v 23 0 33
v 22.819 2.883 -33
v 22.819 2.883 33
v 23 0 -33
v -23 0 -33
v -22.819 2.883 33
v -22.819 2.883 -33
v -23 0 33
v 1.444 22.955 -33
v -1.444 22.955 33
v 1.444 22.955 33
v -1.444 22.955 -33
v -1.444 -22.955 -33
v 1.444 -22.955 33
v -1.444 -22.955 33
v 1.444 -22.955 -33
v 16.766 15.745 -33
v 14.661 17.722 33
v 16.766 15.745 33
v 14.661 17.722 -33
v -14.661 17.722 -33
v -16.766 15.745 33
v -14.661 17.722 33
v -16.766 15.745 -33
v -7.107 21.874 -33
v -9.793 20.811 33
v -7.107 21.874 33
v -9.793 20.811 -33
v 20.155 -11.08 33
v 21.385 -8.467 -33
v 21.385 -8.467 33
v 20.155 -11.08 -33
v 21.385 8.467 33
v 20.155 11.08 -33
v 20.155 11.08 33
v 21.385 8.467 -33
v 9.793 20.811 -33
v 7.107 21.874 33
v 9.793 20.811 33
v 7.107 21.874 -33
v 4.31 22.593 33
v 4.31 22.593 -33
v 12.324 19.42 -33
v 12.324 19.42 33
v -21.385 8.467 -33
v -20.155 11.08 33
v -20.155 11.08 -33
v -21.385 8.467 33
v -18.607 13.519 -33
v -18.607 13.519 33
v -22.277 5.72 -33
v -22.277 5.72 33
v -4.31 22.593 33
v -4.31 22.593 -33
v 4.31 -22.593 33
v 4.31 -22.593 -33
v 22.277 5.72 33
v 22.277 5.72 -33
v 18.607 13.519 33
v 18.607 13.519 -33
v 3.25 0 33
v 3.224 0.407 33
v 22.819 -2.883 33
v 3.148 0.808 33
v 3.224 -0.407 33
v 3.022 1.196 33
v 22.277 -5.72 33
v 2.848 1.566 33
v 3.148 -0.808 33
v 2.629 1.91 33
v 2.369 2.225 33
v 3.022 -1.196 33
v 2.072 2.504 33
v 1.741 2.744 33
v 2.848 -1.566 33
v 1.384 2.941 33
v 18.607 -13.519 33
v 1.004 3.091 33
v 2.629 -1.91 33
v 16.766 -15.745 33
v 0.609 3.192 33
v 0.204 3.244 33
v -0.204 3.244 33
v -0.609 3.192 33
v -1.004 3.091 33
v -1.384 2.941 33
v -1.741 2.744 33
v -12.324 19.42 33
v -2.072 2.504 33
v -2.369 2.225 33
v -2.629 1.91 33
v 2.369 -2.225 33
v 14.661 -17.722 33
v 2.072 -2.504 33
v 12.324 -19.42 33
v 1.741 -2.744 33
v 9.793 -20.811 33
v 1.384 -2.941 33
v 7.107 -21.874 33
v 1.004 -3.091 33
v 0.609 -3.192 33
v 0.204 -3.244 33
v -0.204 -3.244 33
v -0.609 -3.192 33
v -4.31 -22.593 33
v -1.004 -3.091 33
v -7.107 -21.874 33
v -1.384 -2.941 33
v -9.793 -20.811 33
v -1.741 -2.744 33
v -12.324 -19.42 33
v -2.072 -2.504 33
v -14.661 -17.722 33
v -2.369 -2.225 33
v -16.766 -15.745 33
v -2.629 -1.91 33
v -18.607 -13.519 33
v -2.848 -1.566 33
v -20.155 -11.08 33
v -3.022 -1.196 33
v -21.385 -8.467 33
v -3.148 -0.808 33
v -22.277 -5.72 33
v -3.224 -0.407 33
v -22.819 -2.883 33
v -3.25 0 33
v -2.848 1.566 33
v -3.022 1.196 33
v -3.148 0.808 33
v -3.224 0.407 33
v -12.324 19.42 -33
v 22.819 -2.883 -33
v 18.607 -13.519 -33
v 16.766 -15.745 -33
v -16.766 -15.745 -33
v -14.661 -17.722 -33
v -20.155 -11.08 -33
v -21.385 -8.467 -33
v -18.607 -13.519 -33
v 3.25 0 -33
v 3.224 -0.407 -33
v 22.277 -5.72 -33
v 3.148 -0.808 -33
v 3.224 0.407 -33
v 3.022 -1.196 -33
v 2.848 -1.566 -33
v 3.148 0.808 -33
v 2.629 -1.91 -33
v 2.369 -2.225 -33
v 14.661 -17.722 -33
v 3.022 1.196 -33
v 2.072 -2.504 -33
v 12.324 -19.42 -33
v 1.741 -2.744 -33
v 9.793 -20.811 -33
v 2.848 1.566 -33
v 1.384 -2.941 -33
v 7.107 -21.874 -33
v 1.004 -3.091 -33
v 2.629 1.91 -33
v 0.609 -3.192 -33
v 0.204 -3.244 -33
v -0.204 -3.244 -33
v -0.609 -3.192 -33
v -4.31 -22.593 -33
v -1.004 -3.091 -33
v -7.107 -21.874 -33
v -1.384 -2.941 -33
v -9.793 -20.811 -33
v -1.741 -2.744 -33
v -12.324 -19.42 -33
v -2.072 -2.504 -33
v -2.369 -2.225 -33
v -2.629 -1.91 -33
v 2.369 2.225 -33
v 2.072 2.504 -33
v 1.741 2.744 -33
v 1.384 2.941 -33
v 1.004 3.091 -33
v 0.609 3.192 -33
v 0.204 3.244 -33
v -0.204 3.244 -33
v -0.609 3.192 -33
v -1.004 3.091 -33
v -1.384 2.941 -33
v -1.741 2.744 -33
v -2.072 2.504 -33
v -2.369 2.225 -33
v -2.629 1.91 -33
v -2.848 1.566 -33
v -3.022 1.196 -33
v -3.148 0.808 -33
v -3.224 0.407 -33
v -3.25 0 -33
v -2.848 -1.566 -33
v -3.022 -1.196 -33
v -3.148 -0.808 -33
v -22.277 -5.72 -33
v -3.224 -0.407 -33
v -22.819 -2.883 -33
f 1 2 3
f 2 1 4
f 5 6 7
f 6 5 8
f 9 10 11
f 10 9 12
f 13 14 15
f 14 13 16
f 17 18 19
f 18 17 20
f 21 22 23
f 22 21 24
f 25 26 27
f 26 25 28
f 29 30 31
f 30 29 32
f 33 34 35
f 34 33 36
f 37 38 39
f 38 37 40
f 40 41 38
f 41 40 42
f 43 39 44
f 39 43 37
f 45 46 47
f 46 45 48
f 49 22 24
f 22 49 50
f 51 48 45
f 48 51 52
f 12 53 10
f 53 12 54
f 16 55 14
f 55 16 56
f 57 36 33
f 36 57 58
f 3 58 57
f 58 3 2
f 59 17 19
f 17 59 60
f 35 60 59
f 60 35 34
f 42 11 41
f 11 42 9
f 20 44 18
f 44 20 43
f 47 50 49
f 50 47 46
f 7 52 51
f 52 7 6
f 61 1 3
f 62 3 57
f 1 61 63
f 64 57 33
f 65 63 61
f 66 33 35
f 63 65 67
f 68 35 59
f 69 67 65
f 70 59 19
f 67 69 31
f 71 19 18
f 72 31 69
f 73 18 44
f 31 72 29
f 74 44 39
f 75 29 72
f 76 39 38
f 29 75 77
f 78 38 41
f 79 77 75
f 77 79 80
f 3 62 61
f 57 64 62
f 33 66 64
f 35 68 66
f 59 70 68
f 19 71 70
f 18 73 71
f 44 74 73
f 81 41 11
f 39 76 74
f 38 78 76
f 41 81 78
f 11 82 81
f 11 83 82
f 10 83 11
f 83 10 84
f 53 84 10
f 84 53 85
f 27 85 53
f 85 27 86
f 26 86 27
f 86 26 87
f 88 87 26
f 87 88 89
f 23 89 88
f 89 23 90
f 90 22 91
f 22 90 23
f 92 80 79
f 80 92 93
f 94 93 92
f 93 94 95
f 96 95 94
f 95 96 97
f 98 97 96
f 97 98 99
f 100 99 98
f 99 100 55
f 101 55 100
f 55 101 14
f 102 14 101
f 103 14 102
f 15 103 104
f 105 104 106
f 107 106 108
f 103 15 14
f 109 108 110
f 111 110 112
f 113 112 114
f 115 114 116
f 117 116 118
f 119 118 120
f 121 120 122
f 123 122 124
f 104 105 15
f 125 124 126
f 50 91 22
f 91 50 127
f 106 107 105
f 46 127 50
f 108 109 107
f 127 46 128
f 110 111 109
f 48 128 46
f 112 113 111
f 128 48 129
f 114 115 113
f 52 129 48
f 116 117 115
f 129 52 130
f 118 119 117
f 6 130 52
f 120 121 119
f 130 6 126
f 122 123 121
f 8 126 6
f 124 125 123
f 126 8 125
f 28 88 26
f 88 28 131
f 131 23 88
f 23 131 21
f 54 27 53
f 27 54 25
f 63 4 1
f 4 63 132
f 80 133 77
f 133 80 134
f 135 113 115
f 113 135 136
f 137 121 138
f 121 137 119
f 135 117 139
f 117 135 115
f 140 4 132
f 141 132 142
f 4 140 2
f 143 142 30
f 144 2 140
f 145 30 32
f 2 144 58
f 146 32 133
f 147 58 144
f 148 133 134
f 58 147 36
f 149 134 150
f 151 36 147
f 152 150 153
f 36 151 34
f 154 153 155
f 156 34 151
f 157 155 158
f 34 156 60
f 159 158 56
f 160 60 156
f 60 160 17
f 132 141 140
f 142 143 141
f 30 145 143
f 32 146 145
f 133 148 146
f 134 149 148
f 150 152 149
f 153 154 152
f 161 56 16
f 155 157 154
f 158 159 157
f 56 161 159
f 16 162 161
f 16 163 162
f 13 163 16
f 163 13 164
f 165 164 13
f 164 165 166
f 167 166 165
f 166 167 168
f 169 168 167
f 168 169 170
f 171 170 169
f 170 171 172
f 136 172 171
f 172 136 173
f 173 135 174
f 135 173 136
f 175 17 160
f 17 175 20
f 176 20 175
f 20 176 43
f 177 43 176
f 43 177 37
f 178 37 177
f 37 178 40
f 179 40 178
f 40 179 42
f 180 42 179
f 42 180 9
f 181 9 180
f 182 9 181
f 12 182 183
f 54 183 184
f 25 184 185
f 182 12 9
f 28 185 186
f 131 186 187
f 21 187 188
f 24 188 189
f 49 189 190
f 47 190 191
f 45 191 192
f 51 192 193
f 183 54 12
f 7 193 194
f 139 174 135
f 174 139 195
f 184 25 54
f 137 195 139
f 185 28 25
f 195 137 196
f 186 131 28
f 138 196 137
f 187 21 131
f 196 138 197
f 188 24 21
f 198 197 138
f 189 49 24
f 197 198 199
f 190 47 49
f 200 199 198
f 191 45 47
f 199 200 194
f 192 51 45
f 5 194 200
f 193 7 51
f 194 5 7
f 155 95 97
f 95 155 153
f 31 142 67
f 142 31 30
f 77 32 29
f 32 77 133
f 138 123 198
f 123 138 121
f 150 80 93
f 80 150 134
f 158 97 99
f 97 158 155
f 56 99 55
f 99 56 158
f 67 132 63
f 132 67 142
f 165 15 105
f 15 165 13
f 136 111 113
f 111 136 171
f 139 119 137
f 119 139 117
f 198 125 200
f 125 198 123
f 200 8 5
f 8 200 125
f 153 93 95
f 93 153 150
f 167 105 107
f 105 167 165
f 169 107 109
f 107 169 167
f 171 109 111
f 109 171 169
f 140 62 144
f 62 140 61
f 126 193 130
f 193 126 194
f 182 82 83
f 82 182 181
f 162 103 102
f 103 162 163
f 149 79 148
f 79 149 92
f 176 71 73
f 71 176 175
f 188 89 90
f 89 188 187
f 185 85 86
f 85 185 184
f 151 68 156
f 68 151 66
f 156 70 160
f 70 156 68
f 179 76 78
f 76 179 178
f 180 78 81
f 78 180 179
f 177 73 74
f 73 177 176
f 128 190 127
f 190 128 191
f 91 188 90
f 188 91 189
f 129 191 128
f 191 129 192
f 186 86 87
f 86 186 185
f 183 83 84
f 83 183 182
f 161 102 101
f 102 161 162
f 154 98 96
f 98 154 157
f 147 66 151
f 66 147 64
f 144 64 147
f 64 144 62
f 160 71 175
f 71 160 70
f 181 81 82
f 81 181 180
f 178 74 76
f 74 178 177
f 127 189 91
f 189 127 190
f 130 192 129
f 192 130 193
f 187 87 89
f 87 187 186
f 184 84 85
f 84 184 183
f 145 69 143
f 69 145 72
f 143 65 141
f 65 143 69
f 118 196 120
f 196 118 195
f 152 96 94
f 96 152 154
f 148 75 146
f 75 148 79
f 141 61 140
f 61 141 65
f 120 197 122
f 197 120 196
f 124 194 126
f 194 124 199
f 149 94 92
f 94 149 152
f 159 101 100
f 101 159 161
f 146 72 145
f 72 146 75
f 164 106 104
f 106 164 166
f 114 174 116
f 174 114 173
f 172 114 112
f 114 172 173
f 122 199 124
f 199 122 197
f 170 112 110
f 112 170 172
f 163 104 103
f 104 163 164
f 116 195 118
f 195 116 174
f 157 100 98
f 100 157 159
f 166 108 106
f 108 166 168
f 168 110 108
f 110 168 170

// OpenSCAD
$fn = 50;


difference() {
	union() {
		translate(v = [0, 0, -33.0000000000]) {
			cylinder(h = 66, r = 23.0000000000);
		}
	}
	union() {
		translate(v = [0, 0, -100.0000000000]) {
			cylinder(h = 200, r = 3.2500000000);
		}
	}
}
